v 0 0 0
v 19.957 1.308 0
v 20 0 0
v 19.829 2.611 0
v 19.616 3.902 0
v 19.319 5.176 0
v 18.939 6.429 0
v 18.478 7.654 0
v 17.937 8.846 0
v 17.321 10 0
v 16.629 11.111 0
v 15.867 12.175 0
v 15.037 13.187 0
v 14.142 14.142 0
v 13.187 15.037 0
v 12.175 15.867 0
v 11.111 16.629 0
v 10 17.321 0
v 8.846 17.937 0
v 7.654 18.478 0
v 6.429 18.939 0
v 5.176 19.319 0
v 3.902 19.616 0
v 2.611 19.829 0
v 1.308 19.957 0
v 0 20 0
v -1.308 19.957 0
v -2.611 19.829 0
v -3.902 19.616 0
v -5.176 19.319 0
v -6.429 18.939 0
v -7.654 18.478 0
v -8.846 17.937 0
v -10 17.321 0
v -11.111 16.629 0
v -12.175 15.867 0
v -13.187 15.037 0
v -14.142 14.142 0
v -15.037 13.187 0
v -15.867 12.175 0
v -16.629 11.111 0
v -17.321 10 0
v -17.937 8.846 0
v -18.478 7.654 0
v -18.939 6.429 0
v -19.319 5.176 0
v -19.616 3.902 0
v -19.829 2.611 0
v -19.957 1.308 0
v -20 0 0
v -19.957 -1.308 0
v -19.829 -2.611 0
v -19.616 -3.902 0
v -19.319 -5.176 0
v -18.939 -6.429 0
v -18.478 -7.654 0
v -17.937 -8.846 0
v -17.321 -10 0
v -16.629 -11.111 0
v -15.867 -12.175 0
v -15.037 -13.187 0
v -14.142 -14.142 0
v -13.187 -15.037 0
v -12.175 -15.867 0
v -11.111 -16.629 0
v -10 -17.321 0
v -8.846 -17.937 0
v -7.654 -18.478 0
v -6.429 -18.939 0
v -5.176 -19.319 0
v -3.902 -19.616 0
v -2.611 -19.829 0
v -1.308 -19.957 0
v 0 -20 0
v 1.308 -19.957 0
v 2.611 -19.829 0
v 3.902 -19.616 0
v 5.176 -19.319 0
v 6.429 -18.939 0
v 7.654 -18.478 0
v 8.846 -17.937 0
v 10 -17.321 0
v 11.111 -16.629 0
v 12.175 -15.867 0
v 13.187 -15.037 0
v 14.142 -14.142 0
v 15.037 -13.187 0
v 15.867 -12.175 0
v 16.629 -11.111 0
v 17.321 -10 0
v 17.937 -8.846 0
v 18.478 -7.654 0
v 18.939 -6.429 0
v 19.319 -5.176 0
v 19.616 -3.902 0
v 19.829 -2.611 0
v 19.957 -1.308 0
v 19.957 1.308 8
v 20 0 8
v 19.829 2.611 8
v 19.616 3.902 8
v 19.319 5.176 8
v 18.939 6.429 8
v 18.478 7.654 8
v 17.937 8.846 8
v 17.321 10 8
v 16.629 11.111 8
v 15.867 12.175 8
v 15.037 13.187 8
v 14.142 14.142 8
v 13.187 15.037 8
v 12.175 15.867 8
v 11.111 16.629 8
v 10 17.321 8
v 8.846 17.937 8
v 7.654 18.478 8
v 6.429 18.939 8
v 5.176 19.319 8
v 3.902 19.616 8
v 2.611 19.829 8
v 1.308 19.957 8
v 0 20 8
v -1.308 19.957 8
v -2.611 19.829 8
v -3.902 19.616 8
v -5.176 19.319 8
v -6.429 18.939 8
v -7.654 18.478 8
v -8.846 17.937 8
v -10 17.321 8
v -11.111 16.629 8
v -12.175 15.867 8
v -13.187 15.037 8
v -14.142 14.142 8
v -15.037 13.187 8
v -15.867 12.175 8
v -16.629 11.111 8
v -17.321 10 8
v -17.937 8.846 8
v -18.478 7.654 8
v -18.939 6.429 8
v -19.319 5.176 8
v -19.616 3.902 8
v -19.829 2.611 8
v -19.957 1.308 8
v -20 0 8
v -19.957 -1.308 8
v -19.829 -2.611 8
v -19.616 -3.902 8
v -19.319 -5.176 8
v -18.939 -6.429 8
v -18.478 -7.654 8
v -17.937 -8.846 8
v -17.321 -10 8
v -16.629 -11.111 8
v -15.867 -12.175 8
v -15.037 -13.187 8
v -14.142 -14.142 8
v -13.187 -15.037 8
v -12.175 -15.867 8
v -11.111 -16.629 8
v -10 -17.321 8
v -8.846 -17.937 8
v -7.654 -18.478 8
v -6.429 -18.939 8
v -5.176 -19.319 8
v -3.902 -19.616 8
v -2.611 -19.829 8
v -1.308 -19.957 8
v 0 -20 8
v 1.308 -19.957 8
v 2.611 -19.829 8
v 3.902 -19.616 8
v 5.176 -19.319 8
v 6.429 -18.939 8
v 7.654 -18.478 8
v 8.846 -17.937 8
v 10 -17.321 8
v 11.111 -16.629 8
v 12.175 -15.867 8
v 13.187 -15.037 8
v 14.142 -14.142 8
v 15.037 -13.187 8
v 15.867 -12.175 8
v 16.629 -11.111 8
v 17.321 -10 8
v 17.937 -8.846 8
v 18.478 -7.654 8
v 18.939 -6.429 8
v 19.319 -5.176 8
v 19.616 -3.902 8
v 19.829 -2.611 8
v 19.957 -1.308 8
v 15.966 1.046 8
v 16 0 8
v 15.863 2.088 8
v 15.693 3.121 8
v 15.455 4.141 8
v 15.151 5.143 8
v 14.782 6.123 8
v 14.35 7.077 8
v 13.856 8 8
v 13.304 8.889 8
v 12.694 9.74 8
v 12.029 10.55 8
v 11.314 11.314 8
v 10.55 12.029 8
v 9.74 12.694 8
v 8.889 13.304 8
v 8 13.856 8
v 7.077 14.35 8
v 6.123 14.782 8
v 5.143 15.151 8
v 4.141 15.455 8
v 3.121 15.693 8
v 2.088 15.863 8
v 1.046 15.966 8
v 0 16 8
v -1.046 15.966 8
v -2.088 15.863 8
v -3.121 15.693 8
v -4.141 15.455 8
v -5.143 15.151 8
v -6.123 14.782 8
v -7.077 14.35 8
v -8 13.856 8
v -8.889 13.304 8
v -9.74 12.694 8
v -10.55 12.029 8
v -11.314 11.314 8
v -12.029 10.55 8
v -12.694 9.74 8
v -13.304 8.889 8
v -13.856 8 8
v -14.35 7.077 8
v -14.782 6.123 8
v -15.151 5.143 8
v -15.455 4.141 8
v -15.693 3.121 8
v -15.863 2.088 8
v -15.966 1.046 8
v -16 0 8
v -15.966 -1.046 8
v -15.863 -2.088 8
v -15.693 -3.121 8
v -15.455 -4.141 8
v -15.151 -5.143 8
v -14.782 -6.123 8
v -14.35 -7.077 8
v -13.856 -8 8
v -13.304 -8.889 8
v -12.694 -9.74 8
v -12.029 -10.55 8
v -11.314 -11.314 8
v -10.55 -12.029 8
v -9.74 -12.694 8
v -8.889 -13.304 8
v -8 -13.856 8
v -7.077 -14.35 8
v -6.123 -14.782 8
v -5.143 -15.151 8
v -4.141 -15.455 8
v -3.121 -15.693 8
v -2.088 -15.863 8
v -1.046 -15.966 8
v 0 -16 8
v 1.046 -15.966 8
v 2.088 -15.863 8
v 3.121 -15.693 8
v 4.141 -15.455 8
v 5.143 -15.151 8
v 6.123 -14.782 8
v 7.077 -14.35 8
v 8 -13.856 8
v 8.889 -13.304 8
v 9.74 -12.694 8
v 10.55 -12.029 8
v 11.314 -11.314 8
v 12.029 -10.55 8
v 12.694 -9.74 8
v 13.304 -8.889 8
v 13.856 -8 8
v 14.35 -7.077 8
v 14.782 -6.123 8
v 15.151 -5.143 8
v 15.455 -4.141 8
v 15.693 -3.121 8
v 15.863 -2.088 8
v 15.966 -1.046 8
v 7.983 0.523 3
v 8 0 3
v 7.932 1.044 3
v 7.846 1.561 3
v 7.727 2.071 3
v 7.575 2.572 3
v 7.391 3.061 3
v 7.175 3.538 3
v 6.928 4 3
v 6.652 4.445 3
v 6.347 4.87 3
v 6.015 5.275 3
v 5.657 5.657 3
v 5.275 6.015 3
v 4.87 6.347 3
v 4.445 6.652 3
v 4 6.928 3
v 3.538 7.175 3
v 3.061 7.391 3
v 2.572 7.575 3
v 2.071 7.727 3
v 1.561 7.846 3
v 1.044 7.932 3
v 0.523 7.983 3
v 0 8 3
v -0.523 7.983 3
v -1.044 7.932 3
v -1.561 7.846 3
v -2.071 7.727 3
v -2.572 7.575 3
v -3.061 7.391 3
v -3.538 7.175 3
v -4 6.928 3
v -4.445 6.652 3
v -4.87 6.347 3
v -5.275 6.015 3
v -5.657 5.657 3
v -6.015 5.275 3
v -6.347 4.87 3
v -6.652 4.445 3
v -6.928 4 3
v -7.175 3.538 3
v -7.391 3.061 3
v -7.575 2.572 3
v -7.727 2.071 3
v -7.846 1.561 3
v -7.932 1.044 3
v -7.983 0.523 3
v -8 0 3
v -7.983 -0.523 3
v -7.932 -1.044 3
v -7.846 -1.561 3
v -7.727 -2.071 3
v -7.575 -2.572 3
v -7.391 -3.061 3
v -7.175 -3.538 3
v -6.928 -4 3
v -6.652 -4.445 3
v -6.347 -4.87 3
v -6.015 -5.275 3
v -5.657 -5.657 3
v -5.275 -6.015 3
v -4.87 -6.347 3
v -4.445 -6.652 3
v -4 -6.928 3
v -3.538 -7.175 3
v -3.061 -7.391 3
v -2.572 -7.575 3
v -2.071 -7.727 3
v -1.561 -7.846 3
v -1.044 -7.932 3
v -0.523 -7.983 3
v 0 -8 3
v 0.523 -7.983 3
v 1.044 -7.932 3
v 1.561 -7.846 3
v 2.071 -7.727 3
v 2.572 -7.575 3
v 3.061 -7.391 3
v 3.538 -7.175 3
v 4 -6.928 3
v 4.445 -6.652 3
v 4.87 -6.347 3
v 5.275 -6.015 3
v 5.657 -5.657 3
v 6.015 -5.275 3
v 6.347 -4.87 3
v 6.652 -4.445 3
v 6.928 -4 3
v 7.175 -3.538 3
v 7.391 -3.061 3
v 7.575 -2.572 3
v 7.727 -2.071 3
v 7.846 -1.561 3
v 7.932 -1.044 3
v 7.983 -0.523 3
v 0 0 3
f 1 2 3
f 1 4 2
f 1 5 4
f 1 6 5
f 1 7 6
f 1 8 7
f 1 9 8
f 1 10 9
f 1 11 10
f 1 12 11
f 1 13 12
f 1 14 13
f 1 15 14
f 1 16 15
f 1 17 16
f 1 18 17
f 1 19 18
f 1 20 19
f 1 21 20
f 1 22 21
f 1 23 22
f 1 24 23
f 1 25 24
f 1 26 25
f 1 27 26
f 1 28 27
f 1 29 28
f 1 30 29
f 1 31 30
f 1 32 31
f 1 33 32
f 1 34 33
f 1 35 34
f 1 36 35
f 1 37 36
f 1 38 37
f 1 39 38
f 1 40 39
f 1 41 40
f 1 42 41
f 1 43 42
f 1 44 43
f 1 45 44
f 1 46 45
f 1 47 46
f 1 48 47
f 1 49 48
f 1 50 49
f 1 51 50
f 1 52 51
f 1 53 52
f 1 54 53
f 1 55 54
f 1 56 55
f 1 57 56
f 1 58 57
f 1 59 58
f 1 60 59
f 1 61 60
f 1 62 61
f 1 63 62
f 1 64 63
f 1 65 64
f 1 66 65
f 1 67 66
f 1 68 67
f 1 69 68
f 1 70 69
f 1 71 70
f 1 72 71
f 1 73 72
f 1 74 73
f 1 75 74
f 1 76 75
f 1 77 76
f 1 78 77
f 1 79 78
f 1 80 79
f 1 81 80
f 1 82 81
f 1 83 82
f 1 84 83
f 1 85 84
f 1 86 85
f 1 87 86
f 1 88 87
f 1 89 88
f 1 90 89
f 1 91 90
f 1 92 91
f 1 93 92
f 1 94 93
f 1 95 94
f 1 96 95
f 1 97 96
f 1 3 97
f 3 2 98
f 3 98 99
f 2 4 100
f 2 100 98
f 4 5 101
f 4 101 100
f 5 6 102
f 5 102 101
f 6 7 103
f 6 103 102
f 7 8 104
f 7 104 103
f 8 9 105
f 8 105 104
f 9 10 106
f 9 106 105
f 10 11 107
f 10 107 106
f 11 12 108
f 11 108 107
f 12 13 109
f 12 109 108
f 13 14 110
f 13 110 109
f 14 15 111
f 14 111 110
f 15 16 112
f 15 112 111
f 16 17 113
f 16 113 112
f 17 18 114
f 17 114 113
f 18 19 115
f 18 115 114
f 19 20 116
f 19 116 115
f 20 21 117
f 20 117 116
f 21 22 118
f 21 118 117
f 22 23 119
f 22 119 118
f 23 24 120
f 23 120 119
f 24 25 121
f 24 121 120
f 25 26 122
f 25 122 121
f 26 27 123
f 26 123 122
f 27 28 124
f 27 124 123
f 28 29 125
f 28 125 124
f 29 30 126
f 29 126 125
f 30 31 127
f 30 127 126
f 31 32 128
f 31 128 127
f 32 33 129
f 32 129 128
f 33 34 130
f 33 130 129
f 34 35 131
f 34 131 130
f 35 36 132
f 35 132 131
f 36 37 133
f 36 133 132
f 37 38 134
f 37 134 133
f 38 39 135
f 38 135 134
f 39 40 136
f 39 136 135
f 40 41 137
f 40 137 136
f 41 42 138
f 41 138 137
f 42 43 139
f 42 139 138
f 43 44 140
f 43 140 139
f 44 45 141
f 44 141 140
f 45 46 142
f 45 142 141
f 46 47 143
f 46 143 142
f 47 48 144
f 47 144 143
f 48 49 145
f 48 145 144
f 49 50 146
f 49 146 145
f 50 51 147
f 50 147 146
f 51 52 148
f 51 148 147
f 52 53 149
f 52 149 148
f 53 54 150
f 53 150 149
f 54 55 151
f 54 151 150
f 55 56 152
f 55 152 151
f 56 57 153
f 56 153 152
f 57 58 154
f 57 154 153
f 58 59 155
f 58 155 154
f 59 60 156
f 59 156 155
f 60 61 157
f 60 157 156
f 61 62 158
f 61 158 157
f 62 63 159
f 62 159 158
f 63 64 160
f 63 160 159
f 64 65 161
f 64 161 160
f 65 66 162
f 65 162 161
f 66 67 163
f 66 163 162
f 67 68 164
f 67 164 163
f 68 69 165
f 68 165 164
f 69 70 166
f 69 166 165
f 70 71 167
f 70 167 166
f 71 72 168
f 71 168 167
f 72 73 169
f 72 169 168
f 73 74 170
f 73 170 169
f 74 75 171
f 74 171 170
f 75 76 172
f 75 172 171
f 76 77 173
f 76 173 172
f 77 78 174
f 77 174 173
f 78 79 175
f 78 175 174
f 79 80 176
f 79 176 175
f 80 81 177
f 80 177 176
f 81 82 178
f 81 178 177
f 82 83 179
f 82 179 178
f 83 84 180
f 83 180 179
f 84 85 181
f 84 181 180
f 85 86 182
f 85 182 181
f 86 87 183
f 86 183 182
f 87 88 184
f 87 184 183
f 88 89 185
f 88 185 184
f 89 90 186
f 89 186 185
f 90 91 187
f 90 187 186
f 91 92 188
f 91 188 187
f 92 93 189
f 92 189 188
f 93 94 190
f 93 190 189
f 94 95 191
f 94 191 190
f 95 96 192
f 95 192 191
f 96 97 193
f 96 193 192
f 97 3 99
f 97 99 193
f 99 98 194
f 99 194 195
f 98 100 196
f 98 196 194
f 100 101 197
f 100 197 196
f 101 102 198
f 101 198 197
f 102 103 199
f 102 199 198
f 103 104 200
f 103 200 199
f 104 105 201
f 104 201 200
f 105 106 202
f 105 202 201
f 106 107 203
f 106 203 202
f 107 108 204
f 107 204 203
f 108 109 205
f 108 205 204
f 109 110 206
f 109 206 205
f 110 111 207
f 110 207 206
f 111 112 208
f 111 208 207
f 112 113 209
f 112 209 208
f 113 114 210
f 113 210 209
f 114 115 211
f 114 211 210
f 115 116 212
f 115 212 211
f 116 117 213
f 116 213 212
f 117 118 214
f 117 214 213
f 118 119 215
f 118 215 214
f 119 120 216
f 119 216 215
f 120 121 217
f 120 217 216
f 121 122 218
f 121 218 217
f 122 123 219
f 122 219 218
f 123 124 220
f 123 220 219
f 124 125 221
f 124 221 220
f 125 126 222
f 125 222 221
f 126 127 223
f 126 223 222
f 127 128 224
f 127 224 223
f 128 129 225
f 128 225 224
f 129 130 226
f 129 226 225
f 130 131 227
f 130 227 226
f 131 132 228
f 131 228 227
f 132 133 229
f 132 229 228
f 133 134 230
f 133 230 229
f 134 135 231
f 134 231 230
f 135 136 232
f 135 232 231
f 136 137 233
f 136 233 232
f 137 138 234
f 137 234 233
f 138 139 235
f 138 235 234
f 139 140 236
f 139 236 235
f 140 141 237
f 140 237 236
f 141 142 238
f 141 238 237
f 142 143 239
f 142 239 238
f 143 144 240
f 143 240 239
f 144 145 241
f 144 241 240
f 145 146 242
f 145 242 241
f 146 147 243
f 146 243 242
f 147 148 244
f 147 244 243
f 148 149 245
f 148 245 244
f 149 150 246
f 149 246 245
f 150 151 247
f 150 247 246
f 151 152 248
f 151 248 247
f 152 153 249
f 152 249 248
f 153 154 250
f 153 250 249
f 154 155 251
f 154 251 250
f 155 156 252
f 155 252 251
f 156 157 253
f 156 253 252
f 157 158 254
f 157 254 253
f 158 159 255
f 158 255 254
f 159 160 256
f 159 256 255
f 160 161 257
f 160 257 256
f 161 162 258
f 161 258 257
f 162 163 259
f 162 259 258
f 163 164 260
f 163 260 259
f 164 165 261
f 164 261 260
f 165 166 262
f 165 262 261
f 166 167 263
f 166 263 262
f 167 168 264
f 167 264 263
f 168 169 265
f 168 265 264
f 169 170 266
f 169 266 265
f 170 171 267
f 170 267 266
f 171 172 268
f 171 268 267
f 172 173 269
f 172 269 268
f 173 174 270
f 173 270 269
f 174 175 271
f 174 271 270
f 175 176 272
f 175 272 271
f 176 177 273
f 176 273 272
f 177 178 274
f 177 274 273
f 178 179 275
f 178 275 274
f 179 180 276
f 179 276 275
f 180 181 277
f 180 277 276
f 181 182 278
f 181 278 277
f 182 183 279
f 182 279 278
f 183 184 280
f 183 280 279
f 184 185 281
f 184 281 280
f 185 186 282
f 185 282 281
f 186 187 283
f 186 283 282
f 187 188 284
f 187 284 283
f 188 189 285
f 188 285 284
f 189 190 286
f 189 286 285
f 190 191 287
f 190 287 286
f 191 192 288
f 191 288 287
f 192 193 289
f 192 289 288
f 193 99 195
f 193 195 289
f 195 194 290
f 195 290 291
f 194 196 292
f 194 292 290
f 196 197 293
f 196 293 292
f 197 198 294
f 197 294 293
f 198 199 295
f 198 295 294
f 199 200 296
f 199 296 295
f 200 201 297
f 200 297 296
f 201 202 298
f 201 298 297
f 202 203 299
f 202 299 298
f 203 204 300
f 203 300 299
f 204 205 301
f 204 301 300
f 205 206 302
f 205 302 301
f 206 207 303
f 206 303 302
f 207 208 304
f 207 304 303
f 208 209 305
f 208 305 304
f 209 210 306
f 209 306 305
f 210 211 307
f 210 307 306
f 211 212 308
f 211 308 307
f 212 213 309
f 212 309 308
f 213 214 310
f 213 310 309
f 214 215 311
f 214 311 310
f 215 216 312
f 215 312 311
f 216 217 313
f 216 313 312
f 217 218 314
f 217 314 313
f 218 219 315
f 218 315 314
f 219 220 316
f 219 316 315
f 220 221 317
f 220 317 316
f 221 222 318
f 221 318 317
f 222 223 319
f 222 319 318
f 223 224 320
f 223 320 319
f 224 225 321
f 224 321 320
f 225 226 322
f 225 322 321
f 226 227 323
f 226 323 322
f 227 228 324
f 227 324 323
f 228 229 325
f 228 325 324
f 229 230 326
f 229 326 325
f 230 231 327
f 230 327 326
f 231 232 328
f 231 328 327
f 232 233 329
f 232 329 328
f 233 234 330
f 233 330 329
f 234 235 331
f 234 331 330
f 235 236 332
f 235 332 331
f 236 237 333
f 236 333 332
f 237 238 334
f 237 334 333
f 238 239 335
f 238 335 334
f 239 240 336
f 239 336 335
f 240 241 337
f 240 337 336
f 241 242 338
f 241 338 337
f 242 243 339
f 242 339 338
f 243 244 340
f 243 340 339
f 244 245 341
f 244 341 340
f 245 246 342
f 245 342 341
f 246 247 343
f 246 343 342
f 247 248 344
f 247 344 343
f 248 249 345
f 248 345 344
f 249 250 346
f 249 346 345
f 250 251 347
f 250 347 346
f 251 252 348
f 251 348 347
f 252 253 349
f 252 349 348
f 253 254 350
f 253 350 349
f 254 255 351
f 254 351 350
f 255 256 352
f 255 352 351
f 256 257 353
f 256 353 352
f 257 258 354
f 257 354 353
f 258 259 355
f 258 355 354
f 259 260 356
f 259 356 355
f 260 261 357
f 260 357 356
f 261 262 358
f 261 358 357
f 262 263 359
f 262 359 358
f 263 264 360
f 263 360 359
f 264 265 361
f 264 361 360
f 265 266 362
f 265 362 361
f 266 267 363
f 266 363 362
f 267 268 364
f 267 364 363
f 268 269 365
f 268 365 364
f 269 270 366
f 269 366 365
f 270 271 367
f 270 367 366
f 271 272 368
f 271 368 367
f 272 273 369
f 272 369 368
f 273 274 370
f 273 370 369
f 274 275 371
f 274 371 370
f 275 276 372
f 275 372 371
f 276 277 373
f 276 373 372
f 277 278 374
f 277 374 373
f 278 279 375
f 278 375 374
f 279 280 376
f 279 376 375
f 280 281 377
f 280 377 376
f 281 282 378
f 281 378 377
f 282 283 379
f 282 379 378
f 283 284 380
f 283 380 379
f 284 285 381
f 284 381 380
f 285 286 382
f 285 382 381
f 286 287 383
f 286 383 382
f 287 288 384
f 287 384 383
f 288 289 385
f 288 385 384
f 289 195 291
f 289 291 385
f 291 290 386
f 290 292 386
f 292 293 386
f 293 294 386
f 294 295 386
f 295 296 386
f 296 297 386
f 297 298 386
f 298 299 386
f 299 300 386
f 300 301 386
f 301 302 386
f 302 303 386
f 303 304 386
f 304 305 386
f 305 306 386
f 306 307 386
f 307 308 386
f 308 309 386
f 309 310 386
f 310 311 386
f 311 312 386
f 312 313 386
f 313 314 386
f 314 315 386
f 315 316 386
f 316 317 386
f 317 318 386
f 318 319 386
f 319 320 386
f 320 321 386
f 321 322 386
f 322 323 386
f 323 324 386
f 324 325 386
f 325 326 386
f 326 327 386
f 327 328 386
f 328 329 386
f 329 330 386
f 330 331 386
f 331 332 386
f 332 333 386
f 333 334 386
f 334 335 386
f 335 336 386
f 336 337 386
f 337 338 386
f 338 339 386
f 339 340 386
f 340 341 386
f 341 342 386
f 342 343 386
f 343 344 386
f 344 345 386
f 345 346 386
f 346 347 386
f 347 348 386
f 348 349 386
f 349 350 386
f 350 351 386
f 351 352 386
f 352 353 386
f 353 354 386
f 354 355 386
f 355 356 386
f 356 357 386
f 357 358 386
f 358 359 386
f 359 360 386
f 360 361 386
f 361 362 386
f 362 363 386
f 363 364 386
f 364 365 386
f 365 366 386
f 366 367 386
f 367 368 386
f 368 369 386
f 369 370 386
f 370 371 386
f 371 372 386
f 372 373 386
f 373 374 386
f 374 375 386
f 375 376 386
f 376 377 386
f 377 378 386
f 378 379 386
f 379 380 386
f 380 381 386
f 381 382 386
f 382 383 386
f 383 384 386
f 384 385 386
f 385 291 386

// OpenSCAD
// Original MechIntel educational model. CC0-1.0. Units: mm.
// Not a standardized or load-rated component.
$fn=96;
// Section points: [radius, height], mm. Edit to change the profile.
section=[[0, 0], [20, 0], [20, 8], [16, 8], [8, 3], [0, 3]];
rotate_extrude($fn=96) polygon(points=section);
